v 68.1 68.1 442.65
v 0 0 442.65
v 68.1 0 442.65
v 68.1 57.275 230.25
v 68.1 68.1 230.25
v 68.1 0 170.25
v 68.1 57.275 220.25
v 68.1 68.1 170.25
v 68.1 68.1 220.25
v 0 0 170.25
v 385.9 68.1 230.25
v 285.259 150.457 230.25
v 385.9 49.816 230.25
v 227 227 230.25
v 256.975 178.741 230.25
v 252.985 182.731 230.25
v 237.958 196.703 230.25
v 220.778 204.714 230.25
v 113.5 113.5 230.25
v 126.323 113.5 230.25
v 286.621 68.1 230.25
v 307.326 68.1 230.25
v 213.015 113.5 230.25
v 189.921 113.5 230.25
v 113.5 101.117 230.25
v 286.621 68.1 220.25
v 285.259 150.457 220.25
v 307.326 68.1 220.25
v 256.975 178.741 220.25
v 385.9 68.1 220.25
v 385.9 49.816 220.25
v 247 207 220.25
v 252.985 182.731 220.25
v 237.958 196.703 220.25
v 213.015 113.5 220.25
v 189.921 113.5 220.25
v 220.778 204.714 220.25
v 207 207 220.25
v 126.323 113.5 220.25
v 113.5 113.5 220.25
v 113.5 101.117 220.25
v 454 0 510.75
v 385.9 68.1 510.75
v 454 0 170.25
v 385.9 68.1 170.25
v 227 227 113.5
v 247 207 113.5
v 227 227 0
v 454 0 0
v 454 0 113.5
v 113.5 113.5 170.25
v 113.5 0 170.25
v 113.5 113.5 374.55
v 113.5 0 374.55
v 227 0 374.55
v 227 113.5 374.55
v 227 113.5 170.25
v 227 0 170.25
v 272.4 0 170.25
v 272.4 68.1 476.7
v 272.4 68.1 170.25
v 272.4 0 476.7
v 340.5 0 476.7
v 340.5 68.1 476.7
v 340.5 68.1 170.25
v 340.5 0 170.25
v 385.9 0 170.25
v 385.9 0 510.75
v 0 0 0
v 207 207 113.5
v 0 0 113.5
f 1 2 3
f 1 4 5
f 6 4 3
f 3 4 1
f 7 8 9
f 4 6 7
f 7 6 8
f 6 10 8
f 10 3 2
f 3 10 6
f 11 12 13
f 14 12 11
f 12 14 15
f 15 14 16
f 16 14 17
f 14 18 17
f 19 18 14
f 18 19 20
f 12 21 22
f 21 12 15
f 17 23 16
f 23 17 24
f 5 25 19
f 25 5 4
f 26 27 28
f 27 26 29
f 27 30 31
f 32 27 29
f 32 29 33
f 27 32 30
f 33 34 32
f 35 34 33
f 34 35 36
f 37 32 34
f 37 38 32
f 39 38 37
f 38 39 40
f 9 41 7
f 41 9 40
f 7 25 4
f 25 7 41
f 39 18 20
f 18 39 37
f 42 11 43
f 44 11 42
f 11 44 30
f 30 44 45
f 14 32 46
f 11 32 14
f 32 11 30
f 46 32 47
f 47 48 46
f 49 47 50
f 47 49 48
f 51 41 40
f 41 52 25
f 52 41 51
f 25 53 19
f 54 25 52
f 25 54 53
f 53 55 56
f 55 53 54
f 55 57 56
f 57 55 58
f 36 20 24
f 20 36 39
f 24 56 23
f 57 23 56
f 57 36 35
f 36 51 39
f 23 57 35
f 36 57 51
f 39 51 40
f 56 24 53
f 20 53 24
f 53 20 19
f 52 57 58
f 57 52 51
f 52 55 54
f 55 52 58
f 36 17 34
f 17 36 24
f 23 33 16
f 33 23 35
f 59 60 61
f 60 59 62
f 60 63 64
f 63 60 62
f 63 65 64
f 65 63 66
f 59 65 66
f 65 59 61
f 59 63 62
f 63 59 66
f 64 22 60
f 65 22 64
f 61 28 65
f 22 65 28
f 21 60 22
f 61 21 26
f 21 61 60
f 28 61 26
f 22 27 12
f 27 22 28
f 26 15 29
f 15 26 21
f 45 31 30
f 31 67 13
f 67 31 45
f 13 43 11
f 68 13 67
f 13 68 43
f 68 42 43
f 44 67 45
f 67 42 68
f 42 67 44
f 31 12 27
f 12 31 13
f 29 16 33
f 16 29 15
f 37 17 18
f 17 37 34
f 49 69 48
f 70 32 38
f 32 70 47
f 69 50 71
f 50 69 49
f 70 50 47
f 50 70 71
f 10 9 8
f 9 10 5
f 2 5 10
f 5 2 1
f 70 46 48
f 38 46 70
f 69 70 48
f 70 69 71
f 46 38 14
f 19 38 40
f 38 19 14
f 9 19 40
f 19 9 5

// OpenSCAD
logo_base_size=454;
logo_base_height=logo_base_size*.25;

pillar_z_offset = 2;
pillar_7_x_scale = .25;
pillar_7_z_scale =  5;

pillar_spacing = .1;
pillar_vs_base_scaling_factor = .6;

normal_pillar_base = .15;
wide_pillar_base = .25;


analytics_pillar_support_height = 230;

module analytics_pillar(base_ratio, 
                        height_ratio,
                        x_offset_ratio, 
                        y_offset_ratio, 
                        z_offset_ratio,
                        support_angle){

    difference(){
        pillar_base = logo_base_size * base_ratio;
        pillar_height = logo_base_height * height_ratio;
        
        if(y_offset_ratio > 0) {
                y_offset = (y_offset_ratio * logo_base_size) - pillar_base;
                translate([0,
                    y_offset, 
                    z_offset_ratio*logo_base_height])
                       
            union(){
                cube([pillar_base,pillar_base,pillar_height]);
                color("red")
                translate([pillar_base/2-10, pillar_base/2-10,50])
                rotate(support_angle)
                cube([300, 20, 10]);
            }
            
        } else {
            translate([(x_offset_ratio * logo_base_size) - pillar_base,
                (y_offset_ratio * logo_base_size), 
                 z_offset_ratio*logo_base_height]) 
            
            union(){
                cube([pillar_base,pillar_base,pillar_height]);
                color("red")
                translate([pillar_base/2+10,pillar_base/2,50])
                rotate(support_angle)
                cube([300, 20, 10]);
            }
                      
        }
        
        linear_extrude(1000)
            polygon(points =[
                                [logo_base_size,logo_base_size],
                                [logo_base_size,0],
                                [0,logo_base_size]
                             ]
            );
        
    }
    
    
}




difference(){
    union(){
        //base
        linear_extrude(logo_base_height)
            polygon(points =[
                                [0,0],
                                [logo_base_size,0],
                                [0,logo_base_size]
                            ]
                    );



        //Origin
        analytics_pillar(base_ratio=normal_pillar_base, 
                         height_ratio = 4* pillar_vs_base_scaling_factor, 
                         x_offset_ratio = normal_pillar_base,
                         y_offset_ratio = 0, 
                         z_offset_ratio = 1.5,
                         support_angle=44);

        //X-Pillars
        analytics_pillar(base_ratio=wide_pillar_base, 
                         height_ratio = 3* pillar_vs_base_scaling_factor, 
                         x_offset_ratio = 1- (2 * normal_pillar_base + 2* pillar_spacing), 
                         y_offset_ratio = 0, 
                         z_offset_ratio = 1.5,
                         support_angle=60);

        analytics_pillar(base_ratio=normal_pillar_base, 
                         height_ratio = 4.5* pillar_vs_base_scaling_factor, 
                         x_offset_ratio = 1 - (normal_pillar_base + pillar_spacing),
                         y_offset_ratio = 0, 
                         z_offset_ratio = 1.5,
                         support_angle=105);

        analytics_pillar(base_ratio=normal_pillar_base, 
                         height_ratio = 5 * pillar_vs_base_scaling_factor, 
                         x_offset_ratio = 1,
                         y_offset_ratio = 0, 
                         z_offset_ratio = 1.5,
                         support_angle=135);
                         
                         
        //Y-Pillars
        analytics_pillar(base_ratio=wide_pillar_base, 
                         height_ratio = 2.3* pillar_vs_base_scaling_factor, 
                         x_offset_ratio = 0,
                         y_offset_ratio = 1- (2 * normal_pillar_base + 2* pillar_spacing), 
                         z_offset_ratio = 1.5,
                         support_angle=15);

        analytics_pillar(base_ratio=normal_pillar_base, 
                         height_ratio = 3* pillar_vs_base_scaling_factor, 
                         x_offset_ratio = 0,
                         y_offset_ratio = 1 - (normal_pillar_base + pillar_spacing), 
                         z_offset_ratio = 1.5,
                         support_angle=-25);

        analytics_pillar(base_ratio=normal_pillar_base, 
                         height_ratio = 1.3 * pillar_vs_base_scaling_factor, 
                         x_offset_ratio = 0,
                         y_offset_ratio = 1, 
                         z_offset_ratio = 1.5,
                         support_angle=-45);
             
        difference(){
            translate([logo_base_size/2-20,logo_base_size/2-20,0])
            cube([40,40,230]);
            linear_extrude(1000)
                    polygon(points =[
                                        [logo_base_size,logo_base_size],
                                        [logo_base_size,0],
                                        [0,logo_base_size]
                                     ]
                    );
        }
    }

    linear_extrude(1000)
                polygon(points =[
                                    [logo_base_size,logo_base_size],
                                    [0,0],
                                    [0,logo_base_size]
                                 ]
                );
}
